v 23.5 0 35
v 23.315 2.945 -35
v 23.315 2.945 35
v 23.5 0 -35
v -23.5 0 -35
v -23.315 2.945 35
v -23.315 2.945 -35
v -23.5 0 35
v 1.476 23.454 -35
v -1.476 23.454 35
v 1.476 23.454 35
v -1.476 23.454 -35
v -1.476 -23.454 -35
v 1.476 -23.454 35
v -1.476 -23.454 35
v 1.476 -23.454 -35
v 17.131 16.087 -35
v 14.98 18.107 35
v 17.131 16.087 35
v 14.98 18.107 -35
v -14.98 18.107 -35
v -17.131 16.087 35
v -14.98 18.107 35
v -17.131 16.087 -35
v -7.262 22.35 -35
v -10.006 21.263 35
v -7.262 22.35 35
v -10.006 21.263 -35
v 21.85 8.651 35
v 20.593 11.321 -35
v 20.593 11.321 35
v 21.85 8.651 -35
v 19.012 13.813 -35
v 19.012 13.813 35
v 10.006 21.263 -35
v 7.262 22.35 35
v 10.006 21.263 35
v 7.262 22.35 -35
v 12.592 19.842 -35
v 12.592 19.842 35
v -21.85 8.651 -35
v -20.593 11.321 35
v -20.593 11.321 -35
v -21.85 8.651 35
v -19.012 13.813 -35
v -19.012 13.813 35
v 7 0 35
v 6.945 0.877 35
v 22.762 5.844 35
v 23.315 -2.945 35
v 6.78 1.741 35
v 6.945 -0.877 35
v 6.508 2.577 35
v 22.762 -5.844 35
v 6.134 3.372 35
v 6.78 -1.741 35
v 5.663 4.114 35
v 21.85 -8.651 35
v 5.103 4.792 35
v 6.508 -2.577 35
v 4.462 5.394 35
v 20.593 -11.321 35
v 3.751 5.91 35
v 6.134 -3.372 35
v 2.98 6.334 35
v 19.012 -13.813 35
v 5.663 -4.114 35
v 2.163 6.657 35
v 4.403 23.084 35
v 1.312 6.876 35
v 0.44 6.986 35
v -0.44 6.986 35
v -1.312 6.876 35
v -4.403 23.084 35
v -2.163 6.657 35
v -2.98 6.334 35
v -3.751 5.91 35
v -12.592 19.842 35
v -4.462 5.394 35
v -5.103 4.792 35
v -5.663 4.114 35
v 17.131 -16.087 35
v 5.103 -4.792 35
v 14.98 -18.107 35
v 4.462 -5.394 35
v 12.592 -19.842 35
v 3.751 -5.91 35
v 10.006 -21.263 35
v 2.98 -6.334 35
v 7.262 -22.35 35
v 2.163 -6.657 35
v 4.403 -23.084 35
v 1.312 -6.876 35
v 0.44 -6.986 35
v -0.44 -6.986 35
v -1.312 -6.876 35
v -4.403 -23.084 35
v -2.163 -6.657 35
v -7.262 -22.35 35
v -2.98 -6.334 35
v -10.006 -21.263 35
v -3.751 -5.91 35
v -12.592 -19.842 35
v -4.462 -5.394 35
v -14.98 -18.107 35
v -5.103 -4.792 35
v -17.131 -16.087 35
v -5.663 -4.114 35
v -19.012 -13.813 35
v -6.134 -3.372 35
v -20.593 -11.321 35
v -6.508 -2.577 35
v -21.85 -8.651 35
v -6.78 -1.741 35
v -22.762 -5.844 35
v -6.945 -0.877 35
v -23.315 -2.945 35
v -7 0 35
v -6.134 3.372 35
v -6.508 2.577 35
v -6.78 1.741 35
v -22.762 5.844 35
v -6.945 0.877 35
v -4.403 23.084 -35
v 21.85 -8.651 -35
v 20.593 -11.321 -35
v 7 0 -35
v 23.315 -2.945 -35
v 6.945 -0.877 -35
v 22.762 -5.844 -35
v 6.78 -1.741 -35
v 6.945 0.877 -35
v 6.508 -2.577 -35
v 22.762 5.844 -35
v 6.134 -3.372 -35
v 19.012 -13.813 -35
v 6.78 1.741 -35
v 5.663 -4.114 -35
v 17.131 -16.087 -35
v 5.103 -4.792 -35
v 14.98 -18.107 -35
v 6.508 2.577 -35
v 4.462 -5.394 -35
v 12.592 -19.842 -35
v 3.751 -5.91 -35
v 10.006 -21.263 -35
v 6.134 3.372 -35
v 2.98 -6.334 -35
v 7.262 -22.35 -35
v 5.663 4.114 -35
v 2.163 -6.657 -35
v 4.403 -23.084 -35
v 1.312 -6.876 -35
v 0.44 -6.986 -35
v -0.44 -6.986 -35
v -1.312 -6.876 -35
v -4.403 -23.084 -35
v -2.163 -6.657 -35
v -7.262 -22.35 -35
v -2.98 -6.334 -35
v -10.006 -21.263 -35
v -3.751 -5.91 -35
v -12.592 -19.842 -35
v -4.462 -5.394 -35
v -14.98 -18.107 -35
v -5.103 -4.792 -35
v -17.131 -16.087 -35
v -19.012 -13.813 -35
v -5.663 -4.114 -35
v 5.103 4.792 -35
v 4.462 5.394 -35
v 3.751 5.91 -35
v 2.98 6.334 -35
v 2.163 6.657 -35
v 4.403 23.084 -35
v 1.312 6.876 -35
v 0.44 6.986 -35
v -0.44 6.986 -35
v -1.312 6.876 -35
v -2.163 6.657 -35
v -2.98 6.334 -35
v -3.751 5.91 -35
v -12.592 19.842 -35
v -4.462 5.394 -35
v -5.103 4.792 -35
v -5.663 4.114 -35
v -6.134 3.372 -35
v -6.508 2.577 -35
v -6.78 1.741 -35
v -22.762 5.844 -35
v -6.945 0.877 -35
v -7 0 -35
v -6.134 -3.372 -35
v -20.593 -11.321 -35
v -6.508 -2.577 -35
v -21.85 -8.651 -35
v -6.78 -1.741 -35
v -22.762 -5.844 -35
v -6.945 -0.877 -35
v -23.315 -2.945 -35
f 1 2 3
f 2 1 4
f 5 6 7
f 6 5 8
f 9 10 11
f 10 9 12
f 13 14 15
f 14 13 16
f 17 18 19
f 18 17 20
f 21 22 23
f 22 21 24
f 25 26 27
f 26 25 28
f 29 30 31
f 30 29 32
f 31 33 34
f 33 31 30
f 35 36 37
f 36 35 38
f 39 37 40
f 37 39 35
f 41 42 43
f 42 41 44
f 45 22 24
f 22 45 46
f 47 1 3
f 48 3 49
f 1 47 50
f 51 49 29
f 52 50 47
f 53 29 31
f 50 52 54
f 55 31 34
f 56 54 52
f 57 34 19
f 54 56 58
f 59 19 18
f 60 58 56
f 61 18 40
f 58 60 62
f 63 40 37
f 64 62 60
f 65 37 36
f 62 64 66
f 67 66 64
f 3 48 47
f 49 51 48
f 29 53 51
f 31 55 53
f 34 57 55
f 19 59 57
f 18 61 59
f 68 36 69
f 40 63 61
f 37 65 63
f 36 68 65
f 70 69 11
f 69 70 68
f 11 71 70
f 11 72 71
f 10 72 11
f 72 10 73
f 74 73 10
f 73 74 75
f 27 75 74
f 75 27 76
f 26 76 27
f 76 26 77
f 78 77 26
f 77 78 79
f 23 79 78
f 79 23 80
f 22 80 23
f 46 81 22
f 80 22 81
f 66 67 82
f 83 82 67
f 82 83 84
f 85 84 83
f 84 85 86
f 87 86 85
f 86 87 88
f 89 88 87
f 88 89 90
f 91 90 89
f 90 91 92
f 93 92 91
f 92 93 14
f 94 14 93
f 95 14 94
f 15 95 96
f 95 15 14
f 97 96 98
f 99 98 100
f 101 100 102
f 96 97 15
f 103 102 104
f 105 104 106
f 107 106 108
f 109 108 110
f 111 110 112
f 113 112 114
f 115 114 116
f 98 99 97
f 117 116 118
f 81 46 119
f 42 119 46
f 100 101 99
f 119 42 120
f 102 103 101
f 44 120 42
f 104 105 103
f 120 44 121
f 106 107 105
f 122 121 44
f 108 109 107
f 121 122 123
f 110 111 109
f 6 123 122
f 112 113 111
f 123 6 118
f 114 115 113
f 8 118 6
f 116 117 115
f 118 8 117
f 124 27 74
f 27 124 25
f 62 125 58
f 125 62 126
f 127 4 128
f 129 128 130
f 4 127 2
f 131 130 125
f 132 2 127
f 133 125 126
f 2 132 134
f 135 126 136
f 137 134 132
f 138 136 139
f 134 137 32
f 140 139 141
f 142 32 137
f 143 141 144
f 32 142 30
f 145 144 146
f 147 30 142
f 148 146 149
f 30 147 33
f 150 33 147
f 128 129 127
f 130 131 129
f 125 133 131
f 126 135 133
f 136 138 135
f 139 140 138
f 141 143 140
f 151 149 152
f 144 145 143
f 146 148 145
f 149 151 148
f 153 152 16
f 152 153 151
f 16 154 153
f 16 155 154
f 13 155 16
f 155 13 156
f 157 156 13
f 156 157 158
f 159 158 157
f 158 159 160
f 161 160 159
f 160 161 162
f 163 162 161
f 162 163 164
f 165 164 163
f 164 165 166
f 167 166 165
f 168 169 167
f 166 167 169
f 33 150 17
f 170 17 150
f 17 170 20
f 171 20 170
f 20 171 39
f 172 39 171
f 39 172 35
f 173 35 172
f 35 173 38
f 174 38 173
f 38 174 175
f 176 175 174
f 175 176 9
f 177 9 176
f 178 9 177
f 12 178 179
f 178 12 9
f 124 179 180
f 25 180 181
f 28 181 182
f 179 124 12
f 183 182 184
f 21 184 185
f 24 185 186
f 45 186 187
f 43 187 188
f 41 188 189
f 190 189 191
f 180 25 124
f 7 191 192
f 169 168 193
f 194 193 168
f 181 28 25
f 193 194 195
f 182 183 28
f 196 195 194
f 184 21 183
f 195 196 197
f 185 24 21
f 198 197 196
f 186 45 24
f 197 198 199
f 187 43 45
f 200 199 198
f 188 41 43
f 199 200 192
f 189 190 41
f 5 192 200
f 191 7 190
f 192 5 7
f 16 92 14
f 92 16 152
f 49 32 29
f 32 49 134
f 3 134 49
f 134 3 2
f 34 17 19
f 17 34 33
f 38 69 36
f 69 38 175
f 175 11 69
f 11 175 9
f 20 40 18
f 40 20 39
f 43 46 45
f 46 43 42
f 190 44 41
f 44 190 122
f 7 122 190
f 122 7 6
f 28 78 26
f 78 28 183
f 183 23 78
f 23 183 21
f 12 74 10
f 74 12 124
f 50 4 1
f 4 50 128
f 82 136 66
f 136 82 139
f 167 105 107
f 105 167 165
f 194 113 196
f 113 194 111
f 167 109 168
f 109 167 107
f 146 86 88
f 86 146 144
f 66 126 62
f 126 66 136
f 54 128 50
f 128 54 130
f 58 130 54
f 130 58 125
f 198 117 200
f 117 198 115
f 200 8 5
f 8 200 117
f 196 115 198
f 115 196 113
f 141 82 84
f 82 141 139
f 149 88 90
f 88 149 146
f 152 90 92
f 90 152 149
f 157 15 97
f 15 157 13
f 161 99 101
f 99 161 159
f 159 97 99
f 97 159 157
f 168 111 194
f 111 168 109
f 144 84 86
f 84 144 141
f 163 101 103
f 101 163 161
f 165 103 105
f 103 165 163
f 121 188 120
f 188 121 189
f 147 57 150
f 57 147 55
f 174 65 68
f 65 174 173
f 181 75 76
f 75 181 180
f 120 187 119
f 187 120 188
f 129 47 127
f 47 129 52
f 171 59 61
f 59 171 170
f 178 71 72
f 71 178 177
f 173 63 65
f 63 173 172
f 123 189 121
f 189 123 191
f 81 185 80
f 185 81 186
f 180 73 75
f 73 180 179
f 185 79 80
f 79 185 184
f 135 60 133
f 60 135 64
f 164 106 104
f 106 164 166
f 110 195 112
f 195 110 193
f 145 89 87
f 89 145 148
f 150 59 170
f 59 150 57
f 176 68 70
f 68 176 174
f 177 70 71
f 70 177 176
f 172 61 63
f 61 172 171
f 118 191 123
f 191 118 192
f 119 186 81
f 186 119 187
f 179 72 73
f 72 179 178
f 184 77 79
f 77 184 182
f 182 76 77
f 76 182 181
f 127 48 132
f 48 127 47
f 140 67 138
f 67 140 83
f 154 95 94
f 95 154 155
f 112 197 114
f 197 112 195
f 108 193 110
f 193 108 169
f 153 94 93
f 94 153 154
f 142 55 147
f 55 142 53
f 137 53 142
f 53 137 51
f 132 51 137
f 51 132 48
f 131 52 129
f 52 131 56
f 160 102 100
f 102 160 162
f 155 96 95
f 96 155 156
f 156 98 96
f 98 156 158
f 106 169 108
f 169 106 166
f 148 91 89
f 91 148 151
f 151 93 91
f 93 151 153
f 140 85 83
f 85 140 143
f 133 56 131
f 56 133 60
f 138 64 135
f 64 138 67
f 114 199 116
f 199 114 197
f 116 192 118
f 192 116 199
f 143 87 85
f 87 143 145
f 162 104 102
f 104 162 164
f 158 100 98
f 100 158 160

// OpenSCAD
$fn = 50;


difference() {
	union() {
		translate(v = [0, 0, -35.0000000000]) {
			cylinder(h = 70, r = 23.5000000000);
		}
	}
	union() {
		translate(v = [0, 0, -100.0000000000]) {
			cylinder(h = 200, r = 7);
		}
	}
}
